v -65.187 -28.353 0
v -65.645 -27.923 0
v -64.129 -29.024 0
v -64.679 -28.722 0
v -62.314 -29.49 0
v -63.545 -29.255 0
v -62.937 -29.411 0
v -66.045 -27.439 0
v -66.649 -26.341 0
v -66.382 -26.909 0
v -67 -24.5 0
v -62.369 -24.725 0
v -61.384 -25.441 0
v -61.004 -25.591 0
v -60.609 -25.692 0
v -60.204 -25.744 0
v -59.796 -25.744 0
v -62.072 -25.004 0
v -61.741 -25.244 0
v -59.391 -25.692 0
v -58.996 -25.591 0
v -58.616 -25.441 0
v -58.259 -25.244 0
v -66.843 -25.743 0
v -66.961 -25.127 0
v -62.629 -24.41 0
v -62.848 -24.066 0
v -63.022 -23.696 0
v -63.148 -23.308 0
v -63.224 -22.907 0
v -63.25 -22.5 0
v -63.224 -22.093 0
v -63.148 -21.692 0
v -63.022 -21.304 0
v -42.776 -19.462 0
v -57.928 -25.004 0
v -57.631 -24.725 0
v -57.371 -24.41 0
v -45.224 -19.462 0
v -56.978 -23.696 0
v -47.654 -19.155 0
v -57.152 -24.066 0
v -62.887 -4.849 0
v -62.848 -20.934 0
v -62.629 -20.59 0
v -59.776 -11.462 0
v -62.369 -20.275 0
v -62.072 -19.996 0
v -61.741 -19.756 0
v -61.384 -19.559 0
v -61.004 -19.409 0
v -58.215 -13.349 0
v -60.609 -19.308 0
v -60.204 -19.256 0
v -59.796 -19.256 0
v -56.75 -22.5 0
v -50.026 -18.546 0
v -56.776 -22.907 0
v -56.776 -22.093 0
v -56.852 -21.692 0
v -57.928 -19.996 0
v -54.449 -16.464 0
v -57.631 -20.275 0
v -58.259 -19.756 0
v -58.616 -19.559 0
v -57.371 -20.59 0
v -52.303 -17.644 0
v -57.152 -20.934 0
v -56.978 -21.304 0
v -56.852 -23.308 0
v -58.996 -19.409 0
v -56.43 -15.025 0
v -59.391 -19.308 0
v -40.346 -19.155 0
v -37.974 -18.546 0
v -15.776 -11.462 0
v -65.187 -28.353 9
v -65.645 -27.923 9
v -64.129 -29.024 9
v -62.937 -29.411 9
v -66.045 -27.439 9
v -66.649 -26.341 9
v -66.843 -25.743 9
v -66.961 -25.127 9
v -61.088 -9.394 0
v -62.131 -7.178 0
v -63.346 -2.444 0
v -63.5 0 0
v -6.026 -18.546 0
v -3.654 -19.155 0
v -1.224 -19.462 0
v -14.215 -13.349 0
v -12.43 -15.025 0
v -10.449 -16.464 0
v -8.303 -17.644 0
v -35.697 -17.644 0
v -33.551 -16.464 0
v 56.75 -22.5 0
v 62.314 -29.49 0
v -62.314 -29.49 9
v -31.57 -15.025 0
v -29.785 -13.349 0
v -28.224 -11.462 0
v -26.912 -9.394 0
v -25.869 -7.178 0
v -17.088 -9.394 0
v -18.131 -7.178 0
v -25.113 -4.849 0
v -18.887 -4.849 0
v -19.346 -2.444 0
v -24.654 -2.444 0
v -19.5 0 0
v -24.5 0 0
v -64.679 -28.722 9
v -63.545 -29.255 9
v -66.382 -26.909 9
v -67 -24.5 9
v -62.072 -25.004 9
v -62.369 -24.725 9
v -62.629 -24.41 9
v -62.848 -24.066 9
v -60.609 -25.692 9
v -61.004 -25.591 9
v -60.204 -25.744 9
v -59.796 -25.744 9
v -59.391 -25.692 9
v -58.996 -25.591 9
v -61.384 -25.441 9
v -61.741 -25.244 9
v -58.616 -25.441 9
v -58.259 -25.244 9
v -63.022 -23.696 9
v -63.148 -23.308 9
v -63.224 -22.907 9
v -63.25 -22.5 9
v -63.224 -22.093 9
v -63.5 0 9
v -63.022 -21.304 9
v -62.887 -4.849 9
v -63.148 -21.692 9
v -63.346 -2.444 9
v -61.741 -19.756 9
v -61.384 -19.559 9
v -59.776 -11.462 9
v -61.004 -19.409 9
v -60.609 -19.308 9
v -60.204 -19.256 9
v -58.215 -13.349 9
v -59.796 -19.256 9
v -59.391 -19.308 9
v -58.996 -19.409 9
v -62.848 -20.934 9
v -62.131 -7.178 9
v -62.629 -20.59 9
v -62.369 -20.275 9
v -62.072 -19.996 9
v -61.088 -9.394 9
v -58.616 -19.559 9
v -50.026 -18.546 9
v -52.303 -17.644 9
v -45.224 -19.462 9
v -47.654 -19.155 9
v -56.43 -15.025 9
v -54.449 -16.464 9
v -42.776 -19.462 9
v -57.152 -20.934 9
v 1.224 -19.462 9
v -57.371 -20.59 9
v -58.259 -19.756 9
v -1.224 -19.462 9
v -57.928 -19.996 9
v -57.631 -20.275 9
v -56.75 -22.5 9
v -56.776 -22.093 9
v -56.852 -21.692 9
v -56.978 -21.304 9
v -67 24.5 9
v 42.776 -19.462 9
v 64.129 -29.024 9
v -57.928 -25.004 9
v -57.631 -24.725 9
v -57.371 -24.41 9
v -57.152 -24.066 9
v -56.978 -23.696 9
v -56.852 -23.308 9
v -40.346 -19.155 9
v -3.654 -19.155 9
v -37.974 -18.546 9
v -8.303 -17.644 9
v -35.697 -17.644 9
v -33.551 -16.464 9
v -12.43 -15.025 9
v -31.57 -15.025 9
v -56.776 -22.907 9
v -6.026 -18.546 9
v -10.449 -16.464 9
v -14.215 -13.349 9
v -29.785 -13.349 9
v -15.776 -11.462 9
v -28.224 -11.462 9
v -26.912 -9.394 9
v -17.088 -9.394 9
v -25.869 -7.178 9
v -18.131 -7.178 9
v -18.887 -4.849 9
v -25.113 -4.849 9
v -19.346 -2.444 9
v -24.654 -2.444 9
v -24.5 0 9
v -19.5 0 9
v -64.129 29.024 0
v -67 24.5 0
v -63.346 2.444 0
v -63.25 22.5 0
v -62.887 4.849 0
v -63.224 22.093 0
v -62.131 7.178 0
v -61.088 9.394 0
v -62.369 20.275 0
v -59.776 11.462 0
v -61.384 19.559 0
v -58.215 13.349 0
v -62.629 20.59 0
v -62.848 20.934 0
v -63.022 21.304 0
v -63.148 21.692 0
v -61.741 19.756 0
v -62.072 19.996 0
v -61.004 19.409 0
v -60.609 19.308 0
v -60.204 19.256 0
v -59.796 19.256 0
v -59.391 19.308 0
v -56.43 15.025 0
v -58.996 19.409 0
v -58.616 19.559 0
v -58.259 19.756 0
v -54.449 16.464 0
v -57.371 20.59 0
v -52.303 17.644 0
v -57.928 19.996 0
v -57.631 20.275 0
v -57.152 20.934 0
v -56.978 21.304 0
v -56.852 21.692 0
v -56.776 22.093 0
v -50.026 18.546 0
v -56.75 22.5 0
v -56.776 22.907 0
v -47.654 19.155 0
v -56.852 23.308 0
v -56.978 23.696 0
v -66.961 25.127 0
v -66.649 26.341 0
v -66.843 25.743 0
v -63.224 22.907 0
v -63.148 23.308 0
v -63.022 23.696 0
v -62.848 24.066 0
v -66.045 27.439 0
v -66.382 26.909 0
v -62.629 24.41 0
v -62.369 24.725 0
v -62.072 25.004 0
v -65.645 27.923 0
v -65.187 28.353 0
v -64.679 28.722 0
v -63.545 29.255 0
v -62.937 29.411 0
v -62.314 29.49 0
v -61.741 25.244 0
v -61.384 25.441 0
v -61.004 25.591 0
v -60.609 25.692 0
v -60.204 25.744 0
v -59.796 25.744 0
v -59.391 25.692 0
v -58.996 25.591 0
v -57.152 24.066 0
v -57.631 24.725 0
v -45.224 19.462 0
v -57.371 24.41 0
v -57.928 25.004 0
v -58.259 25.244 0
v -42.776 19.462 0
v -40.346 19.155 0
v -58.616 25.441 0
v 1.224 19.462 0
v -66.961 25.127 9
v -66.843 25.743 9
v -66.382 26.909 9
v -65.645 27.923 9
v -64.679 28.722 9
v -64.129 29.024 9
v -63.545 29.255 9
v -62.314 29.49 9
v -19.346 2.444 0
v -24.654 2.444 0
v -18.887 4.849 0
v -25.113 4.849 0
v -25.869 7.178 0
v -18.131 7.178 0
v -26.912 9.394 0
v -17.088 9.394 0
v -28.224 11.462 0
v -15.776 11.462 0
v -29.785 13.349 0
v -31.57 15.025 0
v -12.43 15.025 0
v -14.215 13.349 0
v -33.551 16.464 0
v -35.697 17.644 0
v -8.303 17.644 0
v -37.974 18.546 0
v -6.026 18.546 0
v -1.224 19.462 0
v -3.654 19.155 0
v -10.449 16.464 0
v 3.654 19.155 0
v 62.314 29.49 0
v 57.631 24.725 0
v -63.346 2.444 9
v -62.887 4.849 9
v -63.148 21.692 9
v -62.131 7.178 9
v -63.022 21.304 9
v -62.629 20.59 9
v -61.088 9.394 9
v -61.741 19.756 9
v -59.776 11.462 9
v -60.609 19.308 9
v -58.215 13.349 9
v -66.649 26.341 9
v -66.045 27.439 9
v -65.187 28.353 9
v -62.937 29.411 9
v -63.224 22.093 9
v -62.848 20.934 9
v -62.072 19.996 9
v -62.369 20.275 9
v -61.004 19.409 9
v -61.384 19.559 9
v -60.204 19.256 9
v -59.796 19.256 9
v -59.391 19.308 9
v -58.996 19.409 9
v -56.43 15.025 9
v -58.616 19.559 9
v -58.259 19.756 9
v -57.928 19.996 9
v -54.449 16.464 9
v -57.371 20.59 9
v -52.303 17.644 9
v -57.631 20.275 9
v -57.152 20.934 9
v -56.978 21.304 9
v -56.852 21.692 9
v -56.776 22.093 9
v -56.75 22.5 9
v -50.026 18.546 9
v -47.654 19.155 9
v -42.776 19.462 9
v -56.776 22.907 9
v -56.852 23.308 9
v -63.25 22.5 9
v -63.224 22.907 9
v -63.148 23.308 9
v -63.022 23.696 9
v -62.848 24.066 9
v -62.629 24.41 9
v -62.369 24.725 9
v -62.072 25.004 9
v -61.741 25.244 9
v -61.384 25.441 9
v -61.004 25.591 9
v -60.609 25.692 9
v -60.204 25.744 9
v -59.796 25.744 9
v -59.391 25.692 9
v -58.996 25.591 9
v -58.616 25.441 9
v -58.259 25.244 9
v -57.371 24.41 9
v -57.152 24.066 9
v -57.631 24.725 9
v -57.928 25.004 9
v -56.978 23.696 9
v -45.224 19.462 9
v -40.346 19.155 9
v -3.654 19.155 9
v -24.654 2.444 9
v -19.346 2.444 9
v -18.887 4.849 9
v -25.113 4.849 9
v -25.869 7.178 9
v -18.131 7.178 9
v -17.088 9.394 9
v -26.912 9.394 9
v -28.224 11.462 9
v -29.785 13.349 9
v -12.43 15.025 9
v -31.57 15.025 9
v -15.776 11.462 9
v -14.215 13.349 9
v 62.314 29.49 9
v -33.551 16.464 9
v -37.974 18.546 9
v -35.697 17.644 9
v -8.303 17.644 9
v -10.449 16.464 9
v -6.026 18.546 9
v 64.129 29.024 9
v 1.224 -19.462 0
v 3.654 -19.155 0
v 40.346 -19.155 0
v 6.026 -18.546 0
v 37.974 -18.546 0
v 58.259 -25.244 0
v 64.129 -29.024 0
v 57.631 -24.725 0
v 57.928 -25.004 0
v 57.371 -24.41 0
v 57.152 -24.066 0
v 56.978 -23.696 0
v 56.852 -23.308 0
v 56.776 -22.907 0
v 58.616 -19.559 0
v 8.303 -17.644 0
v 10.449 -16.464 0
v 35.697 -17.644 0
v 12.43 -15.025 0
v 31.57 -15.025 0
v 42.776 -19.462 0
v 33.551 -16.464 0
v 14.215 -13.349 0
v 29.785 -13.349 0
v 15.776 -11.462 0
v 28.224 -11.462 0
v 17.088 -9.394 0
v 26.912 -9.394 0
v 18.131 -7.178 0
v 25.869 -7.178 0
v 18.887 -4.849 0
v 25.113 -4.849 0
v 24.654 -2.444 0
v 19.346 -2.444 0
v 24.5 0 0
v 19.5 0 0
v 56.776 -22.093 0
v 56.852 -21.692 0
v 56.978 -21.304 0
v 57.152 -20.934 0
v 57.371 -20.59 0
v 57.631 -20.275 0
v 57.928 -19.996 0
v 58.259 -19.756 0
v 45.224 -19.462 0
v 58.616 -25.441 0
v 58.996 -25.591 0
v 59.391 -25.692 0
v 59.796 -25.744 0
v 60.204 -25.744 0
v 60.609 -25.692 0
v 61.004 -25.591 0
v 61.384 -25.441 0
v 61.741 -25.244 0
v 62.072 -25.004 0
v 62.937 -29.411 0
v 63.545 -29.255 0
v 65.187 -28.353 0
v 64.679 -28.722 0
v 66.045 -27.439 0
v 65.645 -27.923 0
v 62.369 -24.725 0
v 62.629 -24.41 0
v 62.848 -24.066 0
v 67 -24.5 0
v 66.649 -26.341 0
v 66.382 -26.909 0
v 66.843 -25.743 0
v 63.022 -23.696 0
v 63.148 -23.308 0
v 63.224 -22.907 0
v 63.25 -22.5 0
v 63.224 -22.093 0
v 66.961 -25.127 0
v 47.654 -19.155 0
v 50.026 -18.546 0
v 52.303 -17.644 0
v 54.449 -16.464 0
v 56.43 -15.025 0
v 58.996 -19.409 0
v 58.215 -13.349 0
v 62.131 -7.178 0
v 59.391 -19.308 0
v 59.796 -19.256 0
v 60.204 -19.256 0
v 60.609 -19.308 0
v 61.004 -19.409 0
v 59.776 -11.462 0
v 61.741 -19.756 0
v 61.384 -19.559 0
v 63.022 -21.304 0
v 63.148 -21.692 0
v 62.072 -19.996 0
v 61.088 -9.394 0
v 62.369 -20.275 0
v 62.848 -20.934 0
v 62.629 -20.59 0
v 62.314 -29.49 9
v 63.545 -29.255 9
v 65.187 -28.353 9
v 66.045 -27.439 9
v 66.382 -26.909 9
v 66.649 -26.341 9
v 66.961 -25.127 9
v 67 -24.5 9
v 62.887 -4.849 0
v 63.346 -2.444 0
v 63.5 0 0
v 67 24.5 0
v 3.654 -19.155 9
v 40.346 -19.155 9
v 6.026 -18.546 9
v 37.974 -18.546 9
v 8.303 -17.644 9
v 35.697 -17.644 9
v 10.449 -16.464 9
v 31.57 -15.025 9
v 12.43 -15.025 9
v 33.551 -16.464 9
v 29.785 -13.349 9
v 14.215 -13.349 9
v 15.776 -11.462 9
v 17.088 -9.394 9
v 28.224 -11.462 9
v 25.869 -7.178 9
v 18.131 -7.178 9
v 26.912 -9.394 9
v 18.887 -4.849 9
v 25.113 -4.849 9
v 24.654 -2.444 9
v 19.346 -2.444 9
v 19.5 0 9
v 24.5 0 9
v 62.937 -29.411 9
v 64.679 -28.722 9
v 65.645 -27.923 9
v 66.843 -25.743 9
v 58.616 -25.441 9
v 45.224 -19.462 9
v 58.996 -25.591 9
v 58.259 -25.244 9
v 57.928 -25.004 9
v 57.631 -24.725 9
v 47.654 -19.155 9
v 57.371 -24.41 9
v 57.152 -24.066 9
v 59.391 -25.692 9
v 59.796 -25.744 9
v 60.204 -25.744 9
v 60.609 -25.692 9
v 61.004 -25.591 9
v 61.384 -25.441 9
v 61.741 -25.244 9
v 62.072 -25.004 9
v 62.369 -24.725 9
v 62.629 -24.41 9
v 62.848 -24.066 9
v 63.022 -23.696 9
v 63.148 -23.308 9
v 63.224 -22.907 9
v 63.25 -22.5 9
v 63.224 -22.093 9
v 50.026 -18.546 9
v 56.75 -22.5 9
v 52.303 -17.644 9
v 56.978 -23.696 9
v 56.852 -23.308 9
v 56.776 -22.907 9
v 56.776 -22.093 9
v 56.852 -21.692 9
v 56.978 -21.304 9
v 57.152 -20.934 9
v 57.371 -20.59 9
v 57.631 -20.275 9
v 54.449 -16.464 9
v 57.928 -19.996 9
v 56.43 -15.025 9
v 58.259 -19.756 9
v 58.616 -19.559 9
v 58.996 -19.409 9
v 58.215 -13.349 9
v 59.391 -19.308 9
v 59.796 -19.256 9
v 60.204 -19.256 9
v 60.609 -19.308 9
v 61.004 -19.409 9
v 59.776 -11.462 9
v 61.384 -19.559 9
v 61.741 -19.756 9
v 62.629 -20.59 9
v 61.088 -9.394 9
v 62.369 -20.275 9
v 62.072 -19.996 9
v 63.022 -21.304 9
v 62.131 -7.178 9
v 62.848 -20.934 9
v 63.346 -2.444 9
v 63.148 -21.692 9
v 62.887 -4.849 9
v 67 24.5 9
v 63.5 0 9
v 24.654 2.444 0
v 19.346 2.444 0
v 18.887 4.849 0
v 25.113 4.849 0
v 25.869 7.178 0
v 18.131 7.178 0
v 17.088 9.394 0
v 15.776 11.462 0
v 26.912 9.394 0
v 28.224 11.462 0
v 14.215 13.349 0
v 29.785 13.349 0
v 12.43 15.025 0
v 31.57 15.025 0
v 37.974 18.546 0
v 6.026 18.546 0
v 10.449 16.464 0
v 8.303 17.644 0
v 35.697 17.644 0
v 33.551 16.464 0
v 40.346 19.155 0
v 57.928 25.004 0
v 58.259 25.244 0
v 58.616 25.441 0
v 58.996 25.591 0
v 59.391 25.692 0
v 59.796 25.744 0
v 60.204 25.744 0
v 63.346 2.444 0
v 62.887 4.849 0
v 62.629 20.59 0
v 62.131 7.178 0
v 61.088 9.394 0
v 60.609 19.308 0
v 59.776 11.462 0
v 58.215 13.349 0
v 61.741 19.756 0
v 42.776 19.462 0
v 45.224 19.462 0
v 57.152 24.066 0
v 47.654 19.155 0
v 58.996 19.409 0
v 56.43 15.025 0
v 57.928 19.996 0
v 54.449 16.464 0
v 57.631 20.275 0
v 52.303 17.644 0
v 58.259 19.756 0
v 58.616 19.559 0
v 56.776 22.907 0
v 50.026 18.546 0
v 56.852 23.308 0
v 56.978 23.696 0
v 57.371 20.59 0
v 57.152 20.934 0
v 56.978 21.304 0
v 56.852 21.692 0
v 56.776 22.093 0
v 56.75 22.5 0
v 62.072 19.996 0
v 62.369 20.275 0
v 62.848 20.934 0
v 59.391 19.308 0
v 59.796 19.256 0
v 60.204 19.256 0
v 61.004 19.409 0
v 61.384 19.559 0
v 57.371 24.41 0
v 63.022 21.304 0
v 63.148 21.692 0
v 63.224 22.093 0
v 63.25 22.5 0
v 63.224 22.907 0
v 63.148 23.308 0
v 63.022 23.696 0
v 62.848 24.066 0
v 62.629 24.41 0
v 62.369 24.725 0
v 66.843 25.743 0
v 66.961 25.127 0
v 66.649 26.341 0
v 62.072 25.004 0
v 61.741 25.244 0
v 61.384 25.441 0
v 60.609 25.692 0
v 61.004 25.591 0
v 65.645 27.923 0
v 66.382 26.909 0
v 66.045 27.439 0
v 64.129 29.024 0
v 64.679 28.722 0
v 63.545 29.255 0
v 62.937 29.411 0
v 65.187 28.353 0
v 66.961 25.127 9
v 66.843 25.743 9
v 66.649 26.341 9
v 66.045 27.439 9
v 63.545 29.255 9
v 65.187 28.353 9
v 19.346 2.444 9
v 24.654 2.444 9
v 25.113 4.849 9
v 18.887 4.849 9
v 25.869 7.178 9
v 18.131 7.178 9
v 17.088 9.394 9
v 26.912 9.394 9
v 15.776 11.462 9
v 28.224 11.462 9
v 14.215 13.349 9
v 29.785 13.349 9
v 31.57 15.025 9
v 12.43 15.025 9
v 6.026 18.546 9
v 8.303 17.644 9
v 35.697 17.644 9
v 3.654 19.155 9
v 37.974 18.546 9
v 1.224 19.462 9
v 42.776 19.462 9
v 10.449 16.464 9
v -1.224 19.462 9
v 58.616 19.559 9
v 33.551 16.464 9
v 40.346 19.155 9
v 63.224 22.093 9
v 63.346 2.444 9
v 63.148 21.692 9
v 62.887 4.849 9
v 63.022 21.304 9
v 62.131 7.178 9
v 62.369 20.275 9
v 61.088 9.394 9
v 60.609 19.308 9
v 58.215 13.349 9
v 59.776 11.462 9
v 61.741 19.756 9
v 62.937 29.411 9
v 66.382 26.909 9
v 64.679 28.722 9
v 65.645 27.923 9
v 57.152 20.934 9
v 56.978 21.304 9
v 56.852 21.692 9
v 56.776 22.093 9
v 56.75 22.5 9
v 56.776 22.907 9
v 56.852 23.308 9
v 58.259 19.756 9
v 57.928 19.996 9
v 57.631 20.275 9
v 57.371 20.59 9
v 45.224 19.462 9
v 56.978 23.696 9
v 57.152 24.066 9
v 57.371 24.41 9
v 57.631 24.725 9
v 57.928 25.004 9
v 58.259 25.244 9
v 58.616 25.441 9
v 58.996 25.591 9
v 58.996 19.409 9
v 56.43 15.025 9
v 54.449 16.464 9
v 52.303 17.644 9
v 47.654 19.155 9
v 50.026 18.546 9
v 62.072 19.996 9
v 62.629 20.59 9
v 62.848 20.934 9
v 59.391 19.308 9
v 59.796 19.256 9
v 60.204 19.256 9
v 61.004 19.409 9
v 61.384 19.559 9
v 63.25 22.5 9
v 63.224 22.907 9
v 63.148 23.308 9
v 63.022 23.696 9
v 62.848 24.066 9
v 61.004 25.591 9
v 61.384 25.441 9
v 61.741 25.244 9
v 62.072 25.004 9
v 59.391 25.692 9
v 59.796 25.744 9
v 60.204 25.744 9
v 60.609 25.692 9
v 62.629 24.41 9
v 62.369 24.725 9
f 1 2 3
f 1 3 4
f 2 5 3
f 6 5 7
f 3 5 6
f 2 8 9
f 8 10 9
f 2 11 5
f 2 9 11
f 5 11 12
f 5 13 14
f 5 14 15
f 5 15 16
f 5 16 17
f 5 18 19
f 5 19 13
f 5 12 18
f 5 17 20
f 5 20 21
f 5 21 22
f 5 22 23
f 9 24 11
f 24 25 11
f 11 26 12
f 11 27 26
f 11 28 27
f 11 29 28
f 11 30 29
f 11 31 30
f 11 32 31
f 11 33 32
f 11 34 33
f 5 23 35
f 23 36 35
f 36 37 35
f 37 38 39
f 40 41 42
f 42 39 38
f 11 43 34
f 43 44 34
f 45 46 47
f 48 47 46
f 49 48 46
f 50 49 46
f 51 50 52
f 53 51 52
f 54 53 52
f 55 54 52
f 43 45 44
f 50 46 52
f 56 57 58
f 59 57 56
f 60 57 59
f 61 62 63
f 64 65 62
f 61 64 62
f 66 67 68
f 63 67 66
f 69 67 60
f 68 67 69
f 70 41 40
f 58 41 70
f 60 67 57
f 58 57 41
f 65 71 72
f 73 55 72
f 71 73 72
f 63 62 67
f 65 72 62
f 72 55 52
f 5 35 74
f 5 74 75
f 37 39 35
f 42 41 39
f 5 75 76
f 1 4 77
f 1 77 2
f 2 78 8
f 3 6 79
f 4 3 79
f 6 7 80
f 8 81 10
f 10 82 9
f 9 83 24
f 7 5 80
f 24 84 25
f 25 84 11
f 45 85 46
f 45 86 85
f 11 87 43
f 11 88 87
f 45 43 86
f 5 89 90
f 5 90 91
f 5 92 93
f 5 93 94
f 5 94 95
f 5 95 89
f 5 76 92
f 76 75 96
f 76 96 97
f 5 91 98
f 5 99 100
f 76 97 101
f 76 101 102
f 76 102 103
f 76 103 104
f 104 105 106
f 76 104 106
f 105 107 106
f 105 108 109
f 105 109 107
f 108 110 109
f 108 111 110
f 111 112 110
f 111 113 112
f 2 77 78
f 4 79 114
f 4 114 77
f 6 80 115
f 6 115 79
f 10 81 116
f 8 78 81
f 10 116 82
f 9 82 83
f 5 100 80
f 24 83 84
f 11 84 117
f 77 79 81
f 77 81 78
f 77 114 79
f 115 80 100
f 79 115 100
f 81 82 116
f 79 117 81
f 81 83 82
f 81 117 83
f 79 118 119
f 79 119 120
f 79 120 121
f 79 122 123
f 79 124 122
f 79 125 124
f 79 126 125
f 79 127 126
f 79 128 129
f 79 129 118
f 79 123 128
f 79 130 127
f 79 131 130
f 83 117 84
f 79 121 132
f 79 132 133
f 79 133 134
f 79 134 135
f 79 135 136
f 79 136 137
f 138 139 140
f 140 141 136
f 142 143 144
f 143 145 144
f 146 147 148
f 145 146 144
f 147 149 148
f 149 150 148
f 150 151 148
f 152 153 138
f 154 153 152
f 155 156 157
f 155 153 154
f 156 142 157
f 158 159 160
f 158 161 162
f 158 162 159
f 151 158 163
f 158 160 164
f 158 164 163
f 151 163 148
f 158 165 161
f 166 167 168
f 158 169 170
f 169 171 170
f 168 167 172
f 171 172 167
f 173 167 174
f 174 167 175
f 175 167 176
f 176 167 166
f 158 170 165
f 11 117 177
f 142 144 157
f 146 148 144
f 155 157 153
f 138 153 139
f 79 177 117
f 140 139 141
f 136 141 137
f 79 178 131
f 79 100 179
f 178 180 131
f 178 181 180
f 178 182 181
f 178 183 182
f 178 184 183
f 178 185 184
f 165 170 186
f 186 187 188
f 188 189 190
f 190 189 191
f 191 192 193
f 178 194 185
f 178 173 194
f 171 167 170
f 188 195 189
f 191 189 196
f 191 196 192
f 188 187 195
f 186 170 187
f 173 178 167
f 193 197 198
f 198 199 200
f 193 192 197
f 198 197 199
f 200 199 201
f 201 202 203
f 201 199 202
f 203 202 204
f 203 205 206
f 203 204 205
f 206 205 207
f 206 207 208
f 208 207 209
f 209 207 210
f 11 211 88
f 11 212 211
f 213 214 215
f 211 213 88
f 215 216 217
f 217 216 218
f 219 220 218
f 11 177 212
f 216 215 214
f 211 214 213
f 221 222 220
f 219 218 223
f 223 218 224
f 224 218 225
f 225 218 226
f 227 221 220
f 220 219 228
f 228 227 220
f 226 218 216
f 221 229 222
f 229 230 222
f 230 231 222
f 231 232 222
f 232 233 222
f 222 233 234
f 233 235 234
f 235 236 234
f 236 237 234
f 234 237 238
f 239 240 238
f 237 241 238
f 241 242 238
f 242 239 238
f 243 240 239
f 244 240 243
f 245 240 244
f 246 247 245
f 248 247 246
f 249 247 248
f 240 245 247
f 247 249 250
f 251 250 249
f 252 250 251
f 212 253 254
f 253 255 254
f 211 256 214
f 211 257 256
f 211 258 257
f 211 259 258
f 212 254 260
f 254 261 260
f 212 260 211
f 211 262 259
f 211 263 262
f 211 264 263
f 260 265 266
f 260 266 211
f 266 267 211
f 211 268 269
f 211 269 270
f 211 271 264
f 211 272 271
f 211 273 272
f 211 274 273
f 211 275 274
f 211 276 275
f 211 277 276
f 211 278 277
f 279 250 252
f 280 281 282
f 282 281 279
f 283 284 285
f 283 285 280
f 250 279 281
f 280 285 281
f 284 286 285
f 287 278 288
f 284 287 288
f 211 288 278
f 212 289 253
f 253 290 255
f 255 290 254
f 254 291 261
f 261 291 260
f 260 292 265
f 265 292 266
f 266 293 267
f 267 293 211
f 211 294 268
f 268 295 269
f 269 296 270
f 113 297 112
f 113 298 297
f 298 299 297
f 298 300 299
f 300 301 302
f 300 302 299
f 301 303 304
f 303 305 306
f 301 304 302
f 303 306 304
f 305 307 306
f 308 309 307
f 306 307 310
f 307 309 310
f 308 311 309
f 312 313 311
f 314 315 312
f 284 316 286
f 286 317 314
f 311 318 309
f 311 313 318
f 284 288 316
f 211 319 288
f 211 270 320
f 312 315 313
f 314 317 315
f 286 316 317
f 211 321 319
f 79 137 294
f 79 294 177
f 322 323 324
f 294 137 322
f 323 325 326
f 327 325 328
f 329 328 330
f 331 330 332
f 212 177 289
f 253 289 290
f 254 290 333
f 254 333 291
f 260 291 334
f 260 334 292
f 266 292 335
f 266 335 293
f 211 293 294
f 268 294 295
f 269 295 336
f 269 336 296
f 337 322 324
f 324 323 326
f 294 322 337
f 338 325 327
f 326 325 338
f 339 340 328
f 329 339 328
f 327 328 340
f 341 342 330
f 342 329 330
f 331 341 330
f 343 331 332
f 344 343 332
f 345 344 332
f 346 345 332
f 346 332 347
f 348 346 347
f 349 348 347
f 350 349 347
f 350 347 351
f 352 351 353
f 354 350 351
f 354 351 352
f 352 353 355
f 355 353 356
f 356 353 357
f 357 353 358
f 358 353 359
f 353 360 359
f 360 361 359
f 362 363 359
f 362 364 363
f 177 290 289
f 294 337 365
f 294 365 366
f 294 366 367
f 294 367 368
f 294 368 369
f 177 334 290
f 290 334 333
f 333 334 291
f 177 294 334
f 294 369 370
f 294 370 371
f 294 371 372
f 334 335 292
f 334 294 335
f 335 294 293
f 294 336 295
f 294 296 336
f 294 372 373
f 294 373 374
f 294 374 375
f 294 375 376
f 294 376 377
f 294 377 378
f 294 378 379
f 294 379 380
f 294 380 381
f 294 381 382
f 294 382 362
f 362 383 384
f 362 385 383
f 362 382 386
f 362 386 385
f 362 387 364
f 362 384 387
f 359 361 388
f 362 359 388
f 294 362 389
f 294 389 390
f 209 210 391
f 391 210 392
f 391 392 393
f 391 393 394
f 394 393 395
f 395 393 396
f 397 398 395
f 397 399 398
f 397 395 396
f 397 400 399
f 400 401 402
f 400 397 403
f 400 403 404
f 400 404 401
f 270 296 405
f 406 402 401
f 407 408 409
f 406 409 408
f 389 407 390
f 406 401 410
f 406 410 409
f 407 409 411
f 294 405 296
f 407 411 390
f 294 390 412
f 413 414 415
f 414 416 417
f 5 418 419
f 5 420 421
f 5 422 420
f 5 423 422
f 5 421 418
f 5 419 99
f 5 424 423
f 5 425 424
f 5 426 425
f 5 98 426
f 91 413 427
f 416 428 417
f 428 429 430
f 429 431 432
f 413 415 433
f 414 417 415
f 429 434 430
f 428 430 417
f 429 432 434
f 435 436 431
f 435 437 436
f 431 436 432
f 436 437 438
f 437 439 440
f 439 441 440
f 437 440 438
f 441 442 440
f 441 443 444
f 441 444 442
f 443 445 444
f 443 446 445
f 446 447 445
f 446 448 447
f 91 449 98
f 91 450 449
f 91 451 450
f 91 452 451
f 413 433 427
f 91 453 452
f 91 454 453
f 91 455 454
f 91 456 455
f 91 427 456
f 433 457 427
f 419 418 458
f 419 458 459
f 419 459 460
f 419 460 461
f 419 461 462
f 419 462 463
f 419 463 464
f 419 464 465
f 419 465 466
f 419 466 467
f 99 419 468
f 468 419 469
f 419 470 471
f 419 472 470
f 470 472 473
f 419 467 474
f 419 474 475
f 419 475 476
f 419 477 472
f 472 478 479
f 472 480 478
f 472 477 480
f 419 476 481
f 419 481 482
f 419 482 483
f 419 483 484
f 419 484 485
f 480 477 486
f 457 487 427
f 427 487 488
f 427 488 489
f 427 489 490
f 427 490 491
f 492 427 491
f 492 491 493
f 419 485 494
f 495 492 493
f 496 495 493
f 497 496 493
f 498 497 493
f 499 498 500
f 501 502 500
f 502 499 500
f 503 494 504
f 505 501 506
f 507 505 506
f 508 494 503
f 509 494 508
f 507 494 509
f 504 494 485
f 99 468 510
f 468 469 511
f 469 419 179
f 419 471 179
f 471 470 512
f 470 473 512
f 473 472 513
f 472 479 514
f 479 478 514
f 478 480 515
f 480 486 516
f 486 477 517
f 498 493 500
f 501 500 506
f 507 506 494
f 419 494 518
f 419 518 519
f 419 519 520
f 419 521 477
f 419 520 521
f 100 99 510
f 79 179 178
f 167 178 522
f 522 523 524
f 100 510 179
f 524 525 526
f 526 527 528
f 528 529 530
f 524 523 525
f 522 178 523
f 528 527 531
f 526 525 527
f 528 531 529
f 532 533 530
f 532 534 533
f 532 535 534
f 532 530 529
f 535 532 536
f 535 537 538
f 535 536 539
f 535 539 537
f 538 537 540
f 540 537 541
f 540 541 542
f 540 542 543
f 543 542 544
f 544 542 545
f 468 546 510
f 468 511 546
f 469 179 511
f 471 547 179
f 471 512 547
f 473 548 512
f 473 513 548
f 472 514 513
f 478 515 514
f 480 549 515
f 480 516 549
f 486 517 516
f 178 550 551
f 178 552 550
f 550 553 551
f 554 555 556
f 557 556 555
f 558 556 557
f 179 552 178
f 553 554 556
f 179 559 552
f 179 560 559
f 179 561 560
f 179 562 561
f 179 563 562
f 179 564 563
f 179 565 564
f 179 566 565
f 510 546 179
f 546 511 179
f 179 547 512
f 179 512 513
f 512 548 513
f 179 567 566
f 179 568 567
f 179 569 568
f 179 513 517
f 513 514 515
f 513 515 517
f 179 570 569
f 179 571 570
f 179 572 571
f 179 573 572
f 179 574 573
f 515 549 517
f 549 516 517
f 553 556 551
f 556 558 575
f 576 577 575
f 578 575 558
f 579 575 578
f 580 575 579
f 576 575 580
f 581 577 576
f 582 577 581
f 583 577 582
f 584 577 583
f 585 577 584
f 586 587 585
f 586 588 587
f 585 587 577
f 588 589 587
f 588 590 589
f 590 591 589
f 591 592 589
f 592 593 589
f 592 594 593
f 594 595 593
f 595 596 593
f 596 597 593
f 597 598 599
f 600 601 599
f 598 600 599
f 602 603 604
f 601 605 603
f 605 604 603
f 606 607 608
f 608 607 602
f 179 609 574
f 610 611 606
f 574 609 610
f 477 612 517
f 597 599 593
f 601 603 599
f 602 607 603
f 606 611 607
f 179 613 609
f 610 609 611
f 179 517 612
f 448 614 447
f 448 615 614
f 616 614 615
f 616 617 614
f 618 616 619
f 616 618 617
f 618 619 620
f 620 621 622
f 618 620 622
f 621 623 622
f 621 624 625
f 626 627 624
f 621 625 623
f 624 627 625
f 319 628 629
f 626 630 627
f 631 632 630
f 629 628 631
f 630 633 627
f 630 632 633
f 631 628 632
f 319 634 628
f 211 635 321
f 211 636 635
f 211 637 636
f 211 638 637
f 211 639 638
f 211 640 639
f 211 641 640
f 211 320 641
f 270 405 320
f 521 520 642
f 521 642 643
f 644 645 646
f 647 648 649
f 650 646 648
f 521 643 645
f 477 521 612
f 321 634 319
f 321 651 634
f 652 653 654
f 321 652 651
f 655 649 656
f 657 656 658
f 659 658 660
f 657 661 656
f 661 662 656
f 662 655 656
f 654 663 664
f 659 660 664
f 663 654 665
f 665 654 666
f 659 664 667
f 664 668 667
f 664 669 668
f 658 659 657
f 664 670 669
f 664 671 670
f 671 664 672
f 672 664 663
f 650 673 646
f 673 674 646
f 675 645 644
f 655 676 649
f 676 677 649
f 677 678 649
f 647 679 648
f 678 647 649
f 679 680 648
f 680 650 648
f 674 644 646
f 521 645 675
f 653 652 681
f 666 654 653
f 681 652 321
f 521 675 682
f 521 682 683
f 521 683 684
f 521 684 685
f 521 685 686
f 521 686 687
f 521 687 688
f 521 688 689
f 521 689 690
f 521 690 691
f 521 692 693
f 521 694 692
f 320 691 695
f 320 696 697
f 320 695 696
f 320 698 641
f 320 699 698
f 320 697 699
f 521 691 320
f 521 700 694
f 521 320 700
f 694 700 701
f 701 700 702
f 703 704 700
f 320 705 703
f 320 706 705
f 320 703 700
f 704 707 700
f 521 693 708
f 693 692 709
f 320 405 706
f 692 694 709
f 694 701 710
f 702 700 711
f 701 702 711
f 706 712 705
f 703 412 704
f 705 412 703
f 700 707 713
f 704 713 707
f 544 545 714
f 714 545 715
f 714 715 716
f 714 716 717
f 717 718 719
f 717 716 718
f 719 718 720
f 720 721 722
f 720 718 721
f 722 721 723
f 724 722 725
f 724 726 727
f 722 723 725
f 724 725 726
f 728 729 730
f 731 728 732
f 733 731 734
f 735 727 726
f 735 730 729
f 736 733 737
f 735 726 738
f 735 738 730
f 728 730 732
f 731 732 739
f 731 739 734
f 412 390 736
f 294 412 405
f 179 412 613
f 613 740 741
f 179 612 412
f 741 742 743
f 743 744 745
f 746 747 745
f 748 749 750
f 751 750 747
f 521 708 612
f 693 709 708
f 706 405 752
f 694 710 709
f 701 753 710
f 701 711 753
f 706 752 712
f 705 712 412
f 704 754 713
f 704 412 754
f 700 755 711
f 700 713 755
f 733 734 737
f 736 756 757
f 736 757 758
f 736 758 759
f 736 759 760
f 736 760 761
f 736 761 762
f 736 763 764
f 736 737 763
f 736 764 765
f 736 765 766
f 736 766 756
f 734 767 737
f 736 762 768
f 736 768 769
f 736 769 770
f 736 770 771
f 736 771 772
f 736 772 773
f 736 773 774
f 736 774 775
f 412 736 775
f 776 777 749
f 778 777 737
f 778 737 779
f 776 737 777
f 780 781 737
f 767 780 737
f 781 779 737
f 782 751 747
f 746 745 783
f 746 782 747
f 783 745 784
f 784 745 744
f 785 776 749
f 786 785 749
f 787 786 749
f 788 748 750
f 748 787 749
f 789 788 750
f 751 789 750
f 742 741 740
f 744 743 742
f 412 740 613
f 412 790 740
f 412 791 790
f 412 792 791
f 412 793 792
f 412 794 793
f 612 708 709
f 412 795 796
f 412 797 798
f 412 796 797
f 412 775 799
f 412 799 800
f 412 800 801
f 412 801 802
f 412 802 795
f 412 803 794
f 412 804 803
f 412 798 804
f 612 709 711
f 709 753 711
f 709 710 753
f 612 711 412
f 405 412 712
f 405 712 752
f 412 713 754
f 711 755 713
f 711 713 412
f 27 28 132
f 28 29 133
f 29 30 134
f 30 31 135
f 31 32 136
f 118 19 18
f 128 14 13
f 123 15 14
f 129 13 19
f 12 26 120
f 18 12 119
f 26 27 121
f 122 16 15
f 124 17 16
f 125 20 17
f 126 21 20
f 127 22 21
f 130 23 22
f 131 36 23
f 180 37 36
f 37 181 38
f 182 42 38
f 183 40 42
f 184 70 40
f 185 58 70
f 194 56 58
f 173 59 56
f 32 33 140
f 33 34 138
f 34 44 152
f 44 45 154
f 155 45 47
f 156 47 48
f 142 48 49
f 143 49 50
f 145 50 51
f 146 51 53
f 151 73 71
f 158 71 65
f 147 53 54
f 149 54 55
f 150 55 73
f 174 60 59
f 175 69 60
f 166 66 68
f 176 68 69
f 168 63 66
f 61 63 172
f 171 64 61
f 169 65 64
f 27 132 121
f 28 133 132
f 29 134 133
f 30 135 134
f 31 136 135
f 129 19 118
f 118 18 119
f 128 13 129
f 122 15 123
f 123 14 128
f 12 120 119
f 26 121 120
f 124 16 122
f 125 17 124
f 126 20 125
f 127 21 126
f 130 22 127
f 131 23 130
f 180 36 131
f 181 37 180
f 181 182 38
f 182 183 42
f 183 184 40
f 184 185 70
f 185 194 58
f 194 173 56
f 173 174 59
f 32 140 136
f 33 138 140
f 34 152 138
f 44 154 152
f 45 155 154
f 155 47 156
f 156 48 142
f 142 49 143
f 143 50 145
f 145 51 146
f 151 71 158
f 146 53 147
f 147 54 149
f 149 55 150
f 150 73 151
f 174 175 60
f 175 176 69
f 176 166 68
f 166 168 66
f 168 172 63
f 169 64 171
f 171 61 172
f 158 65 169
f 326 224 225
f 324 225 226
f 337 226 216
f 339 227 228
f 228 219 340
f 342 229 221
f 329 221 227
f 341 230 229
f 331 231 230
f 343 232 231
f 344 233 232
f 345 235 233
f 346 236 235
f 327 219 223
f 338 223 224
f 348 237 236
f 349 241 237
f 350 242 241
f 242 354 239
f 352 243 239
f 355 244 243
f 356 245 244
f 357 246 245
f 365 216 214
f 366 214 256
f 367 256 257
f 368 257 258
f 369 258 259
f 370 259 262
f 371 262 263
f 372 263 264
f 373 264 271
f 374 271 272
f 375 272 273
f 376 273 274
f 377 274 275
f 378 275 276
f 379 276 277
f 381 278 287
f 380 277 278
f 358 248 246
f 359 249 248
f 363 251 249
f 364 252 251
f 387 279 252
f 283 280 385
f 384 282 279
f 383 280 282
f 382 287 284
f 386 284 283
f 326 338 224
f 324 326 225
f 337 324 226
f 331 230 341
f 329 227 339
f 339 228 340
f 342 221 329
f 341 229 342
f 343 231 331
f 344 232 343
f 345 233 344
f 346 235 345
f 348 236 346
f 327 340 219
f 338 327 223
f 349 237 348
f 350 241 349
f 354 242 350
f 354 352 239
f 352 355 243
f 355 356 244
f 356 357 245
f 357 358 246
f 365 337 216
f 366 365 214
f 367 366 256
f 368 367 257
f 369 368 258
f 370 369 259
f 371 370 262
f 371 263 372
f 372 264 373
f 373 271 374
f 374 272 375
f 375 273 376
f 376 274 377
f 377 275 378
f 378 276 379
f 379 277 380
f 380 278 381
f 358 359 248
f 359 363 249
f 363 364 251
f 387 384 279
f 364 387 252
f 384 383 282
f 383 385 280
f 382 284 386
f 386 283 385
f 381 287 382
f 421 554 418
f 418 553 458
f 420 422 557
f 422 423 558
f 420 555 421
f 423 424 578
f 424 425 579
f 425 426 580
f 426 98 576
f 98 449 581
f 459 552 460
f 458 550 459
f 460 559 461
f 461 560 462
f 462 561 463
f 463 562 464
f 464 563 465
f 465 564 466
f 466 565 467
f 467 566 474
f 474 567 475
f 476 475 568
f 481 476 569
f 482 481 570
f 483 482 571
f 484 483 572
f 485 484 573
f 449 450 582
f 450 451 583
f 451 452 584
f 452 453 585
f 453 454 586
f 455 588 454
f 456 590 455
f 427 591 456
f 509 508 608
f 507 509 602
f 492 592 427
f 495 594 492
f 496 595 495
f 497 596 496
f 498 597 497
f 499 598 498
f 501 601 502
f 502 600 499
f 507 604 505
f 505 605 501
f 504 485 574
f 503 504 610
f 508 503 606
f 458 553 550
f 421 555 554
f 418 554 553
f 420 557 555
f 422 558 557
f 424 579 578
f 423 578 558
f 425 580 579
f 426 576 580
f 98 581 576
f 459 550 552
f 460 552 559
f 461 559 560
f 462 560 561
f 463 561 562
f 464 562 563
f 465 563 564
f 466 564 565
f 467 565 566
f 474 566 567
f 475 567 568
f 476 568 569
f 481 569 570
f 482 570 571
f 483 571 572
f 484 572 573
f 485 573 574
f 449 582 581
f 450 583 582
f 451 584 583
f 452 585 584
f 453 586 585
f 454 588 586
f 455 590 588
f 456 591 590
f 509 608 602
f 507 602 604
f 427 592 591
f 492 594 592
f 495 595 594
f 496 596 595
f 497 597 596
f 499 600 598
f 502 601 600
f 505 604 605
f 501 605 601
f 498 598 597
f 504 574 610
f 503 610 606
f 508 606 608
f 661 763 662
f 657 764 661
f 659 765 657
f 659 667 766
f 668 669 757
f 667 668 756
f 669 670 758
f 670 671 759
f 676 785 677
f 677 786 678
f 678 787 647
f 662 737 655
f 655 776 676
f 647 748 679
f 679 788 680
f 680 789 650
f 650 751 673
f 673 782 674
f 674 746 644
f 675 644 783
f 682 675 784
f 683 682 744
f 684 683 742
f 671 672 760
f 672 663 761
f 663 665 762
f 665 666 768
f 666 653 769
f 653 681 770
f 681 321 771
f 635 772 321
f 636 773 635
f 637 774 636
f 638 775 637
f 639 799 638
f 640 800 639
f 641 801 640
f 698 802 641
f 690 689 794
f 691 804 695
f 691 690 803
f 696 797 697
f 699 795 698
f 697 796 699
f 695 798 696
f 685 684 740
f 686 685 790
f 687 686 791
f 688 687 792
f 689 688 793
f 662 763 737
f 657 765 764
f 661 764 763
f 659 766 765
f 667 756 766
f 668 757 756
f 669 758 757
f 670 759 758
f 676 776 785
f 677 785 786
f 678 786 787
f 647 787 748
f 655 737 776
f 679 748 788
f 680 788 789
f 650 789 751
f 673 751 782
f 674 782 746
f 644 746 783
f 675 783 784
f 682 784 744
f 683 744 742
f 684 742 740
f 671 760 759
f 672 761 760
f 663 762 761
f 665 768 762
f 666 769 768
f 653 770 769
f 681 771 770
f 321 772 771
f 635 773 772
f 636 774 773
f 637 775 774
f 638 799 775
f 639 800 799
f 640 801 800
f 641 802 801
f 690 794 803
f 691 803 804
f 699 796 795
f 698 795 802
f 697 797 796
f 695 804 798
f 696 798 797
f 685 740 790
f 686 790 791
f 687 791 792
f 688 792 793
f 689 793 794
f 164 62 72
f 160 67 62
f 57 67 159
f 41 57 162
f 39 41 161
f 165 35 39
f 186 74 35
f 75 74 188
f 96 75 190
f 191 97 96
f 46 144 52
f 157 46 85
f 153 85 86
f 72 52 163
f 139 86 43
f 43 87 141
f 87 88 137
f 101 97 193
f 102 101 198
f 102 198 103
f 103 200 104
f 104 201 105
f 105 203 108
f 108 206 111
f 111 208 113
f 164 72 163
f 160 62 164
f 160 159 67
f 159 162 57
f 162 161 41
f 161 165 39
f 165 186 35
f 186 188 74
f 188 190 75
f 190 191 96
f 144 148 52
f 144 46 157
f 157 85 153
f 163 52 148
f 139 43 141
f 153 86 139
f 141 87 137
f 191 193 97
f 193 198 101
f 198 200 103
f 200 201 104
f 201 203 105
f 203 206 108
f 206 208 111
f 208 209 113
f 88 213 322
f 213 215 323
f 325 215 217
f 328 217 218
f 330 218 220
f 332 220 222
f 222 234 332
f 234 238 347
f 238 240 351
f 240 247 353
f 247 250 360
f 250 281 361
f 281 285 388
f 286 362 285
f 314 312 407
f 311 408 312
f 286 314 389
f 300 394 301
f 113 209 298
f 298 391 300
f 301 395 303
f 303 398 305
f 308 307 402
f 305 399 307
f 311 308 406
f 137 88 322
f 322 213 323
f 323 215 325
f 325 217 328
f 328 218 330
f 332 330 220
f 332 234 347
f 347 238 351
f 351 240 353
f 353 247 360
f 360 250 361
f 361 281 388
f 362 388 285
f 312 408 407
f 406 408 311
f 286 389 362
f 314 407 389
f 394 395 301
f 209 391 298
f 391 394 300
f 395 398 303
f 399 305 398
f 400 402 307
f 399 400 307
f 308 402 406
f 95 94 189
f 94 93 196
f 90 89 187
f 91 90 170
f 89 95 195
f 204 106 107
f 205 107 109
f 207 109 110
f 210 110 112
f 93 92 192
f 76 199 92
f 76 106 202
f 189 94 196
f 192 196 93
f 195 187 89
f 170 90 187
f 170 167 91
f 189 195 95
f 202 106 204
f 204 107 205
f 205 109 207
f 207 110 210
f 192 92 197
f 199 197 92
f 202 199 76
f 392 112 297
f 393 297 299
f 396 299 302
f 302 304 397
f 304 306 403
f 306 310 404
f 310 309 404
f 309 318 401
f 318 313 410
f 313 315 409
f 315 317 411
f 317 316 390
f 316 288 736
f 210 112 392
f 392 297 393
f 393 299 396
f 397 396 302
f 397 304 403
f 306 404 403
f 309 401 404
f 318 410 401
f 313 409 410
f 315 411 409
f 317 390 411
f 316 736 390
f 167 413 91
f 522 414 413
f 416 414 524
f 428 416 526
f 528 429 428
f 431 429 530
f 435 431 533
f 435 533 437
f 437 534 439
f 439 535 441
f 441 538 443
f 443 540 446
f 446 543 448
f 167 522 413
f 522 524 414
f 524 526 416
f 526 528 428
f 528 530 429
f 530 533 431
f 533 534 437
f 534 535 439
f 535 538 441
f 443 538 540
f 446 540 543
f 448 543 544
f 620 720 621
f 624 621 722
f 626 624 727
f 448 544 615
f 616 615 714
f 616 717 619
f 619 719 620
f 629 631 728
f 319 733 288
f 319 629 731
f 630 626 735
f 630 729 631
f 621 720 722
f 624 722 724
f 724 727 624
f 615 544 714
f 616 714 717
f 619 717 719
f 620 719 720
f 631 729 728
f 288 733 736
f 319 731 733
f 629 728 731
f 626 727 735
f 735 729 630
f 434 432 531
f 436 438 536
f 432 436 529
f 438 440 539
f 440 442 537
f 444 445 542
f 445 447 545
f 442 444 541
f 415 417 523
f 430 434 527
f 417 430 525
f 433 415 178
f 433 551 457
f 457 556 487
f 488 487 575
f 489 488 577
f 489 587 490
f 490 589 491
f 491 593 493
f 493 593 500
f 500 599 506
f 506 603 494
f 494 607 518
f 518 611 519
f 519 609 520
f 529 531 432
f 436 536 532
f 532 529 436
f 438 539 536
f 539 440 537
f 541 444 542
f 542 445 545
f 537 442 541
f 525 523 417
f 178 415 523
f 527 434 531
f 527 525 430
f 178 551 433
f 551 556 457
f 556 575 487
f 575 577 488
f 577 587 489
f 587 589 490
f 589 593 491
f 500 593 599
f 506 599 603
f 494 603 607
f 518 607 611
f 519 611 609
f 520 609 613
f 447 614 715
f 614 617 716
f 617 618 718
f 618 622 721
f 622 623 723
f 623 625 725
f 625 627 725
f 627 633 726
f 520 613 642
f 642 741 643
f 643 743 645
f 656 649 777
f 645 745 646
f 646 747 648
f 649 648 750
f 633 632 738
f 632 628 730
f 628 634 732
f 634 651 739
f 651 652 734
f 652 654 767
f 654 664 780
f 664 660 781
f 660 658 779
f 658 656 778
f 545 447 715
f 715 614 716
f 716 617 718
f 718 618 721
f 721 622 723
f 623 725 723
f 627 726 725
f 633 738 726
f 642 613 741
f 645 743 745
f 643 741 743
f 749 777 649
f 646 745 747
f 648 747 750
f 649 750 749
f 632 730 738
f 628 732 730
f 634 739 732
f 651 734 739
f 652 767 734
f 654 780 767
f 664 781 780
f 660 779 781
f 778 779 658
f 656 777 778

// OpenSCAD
$fn = 50;

difference() {
	union() {
		hull() {
			translate(v = [-62.0, 24.5, 0]) {
				cylinder(h = 9, r = 5);
			}
			translate(v = [62.0, 24.5, 0]) {
				cylinder(h = 9, r = 5);
			}
			translate(v = [-62.0, -24.5, 0]) {
				cylinder(h = 9, r = 5);
			}
			translate(v = [62.0, -24.5, 0]) {
				cylinder(h = 9, r = 5);
			}
		}
	}
	union() {
		translate(v = [-60.0, -22.5, -100.0]) {
			cylinder(h = 200, r = 3.25);
		}
		translate(v = [-60.0, 22.5, -100.0]) {
			cylinder(h = 200, r = 3.25);
		}
		translate(v = [60.0, -22.5, -100.0]) {
			cylinder(h = 200, r = 3.25);
		}
		translate(v = [60.0, 22.5, -100.0]) {
			cylinder(h = 200, r = 3.25);
		}
		translate(v = [-60.0, -22.5, -100.0]) {
			cylinder(h = 200, r = 1.8);
		}
		translate(v = [-60.0, 22.5, -100.0]) {
			cylinder(h = 200, r = 1.8);
		}
		translate(v = [60.0, -22.5, -100.0]) {
			cylinder(h = 200, r = 1.8);
		}
		translate(v = [60.0, 22.5, -100.0]) {
			cylinder(h = 200, r = 1.8);
		}
		translate(v = [-44.0, 0, 0.0]) {
			cylinder(h = 9, r = 19.5);
		}
		cylinder(h = 9, r = 19.5);
		translate(v = [44.0, 0, 0.0]) {
			cylinder(h = 9, r = 19.5);
		}
	}
}
